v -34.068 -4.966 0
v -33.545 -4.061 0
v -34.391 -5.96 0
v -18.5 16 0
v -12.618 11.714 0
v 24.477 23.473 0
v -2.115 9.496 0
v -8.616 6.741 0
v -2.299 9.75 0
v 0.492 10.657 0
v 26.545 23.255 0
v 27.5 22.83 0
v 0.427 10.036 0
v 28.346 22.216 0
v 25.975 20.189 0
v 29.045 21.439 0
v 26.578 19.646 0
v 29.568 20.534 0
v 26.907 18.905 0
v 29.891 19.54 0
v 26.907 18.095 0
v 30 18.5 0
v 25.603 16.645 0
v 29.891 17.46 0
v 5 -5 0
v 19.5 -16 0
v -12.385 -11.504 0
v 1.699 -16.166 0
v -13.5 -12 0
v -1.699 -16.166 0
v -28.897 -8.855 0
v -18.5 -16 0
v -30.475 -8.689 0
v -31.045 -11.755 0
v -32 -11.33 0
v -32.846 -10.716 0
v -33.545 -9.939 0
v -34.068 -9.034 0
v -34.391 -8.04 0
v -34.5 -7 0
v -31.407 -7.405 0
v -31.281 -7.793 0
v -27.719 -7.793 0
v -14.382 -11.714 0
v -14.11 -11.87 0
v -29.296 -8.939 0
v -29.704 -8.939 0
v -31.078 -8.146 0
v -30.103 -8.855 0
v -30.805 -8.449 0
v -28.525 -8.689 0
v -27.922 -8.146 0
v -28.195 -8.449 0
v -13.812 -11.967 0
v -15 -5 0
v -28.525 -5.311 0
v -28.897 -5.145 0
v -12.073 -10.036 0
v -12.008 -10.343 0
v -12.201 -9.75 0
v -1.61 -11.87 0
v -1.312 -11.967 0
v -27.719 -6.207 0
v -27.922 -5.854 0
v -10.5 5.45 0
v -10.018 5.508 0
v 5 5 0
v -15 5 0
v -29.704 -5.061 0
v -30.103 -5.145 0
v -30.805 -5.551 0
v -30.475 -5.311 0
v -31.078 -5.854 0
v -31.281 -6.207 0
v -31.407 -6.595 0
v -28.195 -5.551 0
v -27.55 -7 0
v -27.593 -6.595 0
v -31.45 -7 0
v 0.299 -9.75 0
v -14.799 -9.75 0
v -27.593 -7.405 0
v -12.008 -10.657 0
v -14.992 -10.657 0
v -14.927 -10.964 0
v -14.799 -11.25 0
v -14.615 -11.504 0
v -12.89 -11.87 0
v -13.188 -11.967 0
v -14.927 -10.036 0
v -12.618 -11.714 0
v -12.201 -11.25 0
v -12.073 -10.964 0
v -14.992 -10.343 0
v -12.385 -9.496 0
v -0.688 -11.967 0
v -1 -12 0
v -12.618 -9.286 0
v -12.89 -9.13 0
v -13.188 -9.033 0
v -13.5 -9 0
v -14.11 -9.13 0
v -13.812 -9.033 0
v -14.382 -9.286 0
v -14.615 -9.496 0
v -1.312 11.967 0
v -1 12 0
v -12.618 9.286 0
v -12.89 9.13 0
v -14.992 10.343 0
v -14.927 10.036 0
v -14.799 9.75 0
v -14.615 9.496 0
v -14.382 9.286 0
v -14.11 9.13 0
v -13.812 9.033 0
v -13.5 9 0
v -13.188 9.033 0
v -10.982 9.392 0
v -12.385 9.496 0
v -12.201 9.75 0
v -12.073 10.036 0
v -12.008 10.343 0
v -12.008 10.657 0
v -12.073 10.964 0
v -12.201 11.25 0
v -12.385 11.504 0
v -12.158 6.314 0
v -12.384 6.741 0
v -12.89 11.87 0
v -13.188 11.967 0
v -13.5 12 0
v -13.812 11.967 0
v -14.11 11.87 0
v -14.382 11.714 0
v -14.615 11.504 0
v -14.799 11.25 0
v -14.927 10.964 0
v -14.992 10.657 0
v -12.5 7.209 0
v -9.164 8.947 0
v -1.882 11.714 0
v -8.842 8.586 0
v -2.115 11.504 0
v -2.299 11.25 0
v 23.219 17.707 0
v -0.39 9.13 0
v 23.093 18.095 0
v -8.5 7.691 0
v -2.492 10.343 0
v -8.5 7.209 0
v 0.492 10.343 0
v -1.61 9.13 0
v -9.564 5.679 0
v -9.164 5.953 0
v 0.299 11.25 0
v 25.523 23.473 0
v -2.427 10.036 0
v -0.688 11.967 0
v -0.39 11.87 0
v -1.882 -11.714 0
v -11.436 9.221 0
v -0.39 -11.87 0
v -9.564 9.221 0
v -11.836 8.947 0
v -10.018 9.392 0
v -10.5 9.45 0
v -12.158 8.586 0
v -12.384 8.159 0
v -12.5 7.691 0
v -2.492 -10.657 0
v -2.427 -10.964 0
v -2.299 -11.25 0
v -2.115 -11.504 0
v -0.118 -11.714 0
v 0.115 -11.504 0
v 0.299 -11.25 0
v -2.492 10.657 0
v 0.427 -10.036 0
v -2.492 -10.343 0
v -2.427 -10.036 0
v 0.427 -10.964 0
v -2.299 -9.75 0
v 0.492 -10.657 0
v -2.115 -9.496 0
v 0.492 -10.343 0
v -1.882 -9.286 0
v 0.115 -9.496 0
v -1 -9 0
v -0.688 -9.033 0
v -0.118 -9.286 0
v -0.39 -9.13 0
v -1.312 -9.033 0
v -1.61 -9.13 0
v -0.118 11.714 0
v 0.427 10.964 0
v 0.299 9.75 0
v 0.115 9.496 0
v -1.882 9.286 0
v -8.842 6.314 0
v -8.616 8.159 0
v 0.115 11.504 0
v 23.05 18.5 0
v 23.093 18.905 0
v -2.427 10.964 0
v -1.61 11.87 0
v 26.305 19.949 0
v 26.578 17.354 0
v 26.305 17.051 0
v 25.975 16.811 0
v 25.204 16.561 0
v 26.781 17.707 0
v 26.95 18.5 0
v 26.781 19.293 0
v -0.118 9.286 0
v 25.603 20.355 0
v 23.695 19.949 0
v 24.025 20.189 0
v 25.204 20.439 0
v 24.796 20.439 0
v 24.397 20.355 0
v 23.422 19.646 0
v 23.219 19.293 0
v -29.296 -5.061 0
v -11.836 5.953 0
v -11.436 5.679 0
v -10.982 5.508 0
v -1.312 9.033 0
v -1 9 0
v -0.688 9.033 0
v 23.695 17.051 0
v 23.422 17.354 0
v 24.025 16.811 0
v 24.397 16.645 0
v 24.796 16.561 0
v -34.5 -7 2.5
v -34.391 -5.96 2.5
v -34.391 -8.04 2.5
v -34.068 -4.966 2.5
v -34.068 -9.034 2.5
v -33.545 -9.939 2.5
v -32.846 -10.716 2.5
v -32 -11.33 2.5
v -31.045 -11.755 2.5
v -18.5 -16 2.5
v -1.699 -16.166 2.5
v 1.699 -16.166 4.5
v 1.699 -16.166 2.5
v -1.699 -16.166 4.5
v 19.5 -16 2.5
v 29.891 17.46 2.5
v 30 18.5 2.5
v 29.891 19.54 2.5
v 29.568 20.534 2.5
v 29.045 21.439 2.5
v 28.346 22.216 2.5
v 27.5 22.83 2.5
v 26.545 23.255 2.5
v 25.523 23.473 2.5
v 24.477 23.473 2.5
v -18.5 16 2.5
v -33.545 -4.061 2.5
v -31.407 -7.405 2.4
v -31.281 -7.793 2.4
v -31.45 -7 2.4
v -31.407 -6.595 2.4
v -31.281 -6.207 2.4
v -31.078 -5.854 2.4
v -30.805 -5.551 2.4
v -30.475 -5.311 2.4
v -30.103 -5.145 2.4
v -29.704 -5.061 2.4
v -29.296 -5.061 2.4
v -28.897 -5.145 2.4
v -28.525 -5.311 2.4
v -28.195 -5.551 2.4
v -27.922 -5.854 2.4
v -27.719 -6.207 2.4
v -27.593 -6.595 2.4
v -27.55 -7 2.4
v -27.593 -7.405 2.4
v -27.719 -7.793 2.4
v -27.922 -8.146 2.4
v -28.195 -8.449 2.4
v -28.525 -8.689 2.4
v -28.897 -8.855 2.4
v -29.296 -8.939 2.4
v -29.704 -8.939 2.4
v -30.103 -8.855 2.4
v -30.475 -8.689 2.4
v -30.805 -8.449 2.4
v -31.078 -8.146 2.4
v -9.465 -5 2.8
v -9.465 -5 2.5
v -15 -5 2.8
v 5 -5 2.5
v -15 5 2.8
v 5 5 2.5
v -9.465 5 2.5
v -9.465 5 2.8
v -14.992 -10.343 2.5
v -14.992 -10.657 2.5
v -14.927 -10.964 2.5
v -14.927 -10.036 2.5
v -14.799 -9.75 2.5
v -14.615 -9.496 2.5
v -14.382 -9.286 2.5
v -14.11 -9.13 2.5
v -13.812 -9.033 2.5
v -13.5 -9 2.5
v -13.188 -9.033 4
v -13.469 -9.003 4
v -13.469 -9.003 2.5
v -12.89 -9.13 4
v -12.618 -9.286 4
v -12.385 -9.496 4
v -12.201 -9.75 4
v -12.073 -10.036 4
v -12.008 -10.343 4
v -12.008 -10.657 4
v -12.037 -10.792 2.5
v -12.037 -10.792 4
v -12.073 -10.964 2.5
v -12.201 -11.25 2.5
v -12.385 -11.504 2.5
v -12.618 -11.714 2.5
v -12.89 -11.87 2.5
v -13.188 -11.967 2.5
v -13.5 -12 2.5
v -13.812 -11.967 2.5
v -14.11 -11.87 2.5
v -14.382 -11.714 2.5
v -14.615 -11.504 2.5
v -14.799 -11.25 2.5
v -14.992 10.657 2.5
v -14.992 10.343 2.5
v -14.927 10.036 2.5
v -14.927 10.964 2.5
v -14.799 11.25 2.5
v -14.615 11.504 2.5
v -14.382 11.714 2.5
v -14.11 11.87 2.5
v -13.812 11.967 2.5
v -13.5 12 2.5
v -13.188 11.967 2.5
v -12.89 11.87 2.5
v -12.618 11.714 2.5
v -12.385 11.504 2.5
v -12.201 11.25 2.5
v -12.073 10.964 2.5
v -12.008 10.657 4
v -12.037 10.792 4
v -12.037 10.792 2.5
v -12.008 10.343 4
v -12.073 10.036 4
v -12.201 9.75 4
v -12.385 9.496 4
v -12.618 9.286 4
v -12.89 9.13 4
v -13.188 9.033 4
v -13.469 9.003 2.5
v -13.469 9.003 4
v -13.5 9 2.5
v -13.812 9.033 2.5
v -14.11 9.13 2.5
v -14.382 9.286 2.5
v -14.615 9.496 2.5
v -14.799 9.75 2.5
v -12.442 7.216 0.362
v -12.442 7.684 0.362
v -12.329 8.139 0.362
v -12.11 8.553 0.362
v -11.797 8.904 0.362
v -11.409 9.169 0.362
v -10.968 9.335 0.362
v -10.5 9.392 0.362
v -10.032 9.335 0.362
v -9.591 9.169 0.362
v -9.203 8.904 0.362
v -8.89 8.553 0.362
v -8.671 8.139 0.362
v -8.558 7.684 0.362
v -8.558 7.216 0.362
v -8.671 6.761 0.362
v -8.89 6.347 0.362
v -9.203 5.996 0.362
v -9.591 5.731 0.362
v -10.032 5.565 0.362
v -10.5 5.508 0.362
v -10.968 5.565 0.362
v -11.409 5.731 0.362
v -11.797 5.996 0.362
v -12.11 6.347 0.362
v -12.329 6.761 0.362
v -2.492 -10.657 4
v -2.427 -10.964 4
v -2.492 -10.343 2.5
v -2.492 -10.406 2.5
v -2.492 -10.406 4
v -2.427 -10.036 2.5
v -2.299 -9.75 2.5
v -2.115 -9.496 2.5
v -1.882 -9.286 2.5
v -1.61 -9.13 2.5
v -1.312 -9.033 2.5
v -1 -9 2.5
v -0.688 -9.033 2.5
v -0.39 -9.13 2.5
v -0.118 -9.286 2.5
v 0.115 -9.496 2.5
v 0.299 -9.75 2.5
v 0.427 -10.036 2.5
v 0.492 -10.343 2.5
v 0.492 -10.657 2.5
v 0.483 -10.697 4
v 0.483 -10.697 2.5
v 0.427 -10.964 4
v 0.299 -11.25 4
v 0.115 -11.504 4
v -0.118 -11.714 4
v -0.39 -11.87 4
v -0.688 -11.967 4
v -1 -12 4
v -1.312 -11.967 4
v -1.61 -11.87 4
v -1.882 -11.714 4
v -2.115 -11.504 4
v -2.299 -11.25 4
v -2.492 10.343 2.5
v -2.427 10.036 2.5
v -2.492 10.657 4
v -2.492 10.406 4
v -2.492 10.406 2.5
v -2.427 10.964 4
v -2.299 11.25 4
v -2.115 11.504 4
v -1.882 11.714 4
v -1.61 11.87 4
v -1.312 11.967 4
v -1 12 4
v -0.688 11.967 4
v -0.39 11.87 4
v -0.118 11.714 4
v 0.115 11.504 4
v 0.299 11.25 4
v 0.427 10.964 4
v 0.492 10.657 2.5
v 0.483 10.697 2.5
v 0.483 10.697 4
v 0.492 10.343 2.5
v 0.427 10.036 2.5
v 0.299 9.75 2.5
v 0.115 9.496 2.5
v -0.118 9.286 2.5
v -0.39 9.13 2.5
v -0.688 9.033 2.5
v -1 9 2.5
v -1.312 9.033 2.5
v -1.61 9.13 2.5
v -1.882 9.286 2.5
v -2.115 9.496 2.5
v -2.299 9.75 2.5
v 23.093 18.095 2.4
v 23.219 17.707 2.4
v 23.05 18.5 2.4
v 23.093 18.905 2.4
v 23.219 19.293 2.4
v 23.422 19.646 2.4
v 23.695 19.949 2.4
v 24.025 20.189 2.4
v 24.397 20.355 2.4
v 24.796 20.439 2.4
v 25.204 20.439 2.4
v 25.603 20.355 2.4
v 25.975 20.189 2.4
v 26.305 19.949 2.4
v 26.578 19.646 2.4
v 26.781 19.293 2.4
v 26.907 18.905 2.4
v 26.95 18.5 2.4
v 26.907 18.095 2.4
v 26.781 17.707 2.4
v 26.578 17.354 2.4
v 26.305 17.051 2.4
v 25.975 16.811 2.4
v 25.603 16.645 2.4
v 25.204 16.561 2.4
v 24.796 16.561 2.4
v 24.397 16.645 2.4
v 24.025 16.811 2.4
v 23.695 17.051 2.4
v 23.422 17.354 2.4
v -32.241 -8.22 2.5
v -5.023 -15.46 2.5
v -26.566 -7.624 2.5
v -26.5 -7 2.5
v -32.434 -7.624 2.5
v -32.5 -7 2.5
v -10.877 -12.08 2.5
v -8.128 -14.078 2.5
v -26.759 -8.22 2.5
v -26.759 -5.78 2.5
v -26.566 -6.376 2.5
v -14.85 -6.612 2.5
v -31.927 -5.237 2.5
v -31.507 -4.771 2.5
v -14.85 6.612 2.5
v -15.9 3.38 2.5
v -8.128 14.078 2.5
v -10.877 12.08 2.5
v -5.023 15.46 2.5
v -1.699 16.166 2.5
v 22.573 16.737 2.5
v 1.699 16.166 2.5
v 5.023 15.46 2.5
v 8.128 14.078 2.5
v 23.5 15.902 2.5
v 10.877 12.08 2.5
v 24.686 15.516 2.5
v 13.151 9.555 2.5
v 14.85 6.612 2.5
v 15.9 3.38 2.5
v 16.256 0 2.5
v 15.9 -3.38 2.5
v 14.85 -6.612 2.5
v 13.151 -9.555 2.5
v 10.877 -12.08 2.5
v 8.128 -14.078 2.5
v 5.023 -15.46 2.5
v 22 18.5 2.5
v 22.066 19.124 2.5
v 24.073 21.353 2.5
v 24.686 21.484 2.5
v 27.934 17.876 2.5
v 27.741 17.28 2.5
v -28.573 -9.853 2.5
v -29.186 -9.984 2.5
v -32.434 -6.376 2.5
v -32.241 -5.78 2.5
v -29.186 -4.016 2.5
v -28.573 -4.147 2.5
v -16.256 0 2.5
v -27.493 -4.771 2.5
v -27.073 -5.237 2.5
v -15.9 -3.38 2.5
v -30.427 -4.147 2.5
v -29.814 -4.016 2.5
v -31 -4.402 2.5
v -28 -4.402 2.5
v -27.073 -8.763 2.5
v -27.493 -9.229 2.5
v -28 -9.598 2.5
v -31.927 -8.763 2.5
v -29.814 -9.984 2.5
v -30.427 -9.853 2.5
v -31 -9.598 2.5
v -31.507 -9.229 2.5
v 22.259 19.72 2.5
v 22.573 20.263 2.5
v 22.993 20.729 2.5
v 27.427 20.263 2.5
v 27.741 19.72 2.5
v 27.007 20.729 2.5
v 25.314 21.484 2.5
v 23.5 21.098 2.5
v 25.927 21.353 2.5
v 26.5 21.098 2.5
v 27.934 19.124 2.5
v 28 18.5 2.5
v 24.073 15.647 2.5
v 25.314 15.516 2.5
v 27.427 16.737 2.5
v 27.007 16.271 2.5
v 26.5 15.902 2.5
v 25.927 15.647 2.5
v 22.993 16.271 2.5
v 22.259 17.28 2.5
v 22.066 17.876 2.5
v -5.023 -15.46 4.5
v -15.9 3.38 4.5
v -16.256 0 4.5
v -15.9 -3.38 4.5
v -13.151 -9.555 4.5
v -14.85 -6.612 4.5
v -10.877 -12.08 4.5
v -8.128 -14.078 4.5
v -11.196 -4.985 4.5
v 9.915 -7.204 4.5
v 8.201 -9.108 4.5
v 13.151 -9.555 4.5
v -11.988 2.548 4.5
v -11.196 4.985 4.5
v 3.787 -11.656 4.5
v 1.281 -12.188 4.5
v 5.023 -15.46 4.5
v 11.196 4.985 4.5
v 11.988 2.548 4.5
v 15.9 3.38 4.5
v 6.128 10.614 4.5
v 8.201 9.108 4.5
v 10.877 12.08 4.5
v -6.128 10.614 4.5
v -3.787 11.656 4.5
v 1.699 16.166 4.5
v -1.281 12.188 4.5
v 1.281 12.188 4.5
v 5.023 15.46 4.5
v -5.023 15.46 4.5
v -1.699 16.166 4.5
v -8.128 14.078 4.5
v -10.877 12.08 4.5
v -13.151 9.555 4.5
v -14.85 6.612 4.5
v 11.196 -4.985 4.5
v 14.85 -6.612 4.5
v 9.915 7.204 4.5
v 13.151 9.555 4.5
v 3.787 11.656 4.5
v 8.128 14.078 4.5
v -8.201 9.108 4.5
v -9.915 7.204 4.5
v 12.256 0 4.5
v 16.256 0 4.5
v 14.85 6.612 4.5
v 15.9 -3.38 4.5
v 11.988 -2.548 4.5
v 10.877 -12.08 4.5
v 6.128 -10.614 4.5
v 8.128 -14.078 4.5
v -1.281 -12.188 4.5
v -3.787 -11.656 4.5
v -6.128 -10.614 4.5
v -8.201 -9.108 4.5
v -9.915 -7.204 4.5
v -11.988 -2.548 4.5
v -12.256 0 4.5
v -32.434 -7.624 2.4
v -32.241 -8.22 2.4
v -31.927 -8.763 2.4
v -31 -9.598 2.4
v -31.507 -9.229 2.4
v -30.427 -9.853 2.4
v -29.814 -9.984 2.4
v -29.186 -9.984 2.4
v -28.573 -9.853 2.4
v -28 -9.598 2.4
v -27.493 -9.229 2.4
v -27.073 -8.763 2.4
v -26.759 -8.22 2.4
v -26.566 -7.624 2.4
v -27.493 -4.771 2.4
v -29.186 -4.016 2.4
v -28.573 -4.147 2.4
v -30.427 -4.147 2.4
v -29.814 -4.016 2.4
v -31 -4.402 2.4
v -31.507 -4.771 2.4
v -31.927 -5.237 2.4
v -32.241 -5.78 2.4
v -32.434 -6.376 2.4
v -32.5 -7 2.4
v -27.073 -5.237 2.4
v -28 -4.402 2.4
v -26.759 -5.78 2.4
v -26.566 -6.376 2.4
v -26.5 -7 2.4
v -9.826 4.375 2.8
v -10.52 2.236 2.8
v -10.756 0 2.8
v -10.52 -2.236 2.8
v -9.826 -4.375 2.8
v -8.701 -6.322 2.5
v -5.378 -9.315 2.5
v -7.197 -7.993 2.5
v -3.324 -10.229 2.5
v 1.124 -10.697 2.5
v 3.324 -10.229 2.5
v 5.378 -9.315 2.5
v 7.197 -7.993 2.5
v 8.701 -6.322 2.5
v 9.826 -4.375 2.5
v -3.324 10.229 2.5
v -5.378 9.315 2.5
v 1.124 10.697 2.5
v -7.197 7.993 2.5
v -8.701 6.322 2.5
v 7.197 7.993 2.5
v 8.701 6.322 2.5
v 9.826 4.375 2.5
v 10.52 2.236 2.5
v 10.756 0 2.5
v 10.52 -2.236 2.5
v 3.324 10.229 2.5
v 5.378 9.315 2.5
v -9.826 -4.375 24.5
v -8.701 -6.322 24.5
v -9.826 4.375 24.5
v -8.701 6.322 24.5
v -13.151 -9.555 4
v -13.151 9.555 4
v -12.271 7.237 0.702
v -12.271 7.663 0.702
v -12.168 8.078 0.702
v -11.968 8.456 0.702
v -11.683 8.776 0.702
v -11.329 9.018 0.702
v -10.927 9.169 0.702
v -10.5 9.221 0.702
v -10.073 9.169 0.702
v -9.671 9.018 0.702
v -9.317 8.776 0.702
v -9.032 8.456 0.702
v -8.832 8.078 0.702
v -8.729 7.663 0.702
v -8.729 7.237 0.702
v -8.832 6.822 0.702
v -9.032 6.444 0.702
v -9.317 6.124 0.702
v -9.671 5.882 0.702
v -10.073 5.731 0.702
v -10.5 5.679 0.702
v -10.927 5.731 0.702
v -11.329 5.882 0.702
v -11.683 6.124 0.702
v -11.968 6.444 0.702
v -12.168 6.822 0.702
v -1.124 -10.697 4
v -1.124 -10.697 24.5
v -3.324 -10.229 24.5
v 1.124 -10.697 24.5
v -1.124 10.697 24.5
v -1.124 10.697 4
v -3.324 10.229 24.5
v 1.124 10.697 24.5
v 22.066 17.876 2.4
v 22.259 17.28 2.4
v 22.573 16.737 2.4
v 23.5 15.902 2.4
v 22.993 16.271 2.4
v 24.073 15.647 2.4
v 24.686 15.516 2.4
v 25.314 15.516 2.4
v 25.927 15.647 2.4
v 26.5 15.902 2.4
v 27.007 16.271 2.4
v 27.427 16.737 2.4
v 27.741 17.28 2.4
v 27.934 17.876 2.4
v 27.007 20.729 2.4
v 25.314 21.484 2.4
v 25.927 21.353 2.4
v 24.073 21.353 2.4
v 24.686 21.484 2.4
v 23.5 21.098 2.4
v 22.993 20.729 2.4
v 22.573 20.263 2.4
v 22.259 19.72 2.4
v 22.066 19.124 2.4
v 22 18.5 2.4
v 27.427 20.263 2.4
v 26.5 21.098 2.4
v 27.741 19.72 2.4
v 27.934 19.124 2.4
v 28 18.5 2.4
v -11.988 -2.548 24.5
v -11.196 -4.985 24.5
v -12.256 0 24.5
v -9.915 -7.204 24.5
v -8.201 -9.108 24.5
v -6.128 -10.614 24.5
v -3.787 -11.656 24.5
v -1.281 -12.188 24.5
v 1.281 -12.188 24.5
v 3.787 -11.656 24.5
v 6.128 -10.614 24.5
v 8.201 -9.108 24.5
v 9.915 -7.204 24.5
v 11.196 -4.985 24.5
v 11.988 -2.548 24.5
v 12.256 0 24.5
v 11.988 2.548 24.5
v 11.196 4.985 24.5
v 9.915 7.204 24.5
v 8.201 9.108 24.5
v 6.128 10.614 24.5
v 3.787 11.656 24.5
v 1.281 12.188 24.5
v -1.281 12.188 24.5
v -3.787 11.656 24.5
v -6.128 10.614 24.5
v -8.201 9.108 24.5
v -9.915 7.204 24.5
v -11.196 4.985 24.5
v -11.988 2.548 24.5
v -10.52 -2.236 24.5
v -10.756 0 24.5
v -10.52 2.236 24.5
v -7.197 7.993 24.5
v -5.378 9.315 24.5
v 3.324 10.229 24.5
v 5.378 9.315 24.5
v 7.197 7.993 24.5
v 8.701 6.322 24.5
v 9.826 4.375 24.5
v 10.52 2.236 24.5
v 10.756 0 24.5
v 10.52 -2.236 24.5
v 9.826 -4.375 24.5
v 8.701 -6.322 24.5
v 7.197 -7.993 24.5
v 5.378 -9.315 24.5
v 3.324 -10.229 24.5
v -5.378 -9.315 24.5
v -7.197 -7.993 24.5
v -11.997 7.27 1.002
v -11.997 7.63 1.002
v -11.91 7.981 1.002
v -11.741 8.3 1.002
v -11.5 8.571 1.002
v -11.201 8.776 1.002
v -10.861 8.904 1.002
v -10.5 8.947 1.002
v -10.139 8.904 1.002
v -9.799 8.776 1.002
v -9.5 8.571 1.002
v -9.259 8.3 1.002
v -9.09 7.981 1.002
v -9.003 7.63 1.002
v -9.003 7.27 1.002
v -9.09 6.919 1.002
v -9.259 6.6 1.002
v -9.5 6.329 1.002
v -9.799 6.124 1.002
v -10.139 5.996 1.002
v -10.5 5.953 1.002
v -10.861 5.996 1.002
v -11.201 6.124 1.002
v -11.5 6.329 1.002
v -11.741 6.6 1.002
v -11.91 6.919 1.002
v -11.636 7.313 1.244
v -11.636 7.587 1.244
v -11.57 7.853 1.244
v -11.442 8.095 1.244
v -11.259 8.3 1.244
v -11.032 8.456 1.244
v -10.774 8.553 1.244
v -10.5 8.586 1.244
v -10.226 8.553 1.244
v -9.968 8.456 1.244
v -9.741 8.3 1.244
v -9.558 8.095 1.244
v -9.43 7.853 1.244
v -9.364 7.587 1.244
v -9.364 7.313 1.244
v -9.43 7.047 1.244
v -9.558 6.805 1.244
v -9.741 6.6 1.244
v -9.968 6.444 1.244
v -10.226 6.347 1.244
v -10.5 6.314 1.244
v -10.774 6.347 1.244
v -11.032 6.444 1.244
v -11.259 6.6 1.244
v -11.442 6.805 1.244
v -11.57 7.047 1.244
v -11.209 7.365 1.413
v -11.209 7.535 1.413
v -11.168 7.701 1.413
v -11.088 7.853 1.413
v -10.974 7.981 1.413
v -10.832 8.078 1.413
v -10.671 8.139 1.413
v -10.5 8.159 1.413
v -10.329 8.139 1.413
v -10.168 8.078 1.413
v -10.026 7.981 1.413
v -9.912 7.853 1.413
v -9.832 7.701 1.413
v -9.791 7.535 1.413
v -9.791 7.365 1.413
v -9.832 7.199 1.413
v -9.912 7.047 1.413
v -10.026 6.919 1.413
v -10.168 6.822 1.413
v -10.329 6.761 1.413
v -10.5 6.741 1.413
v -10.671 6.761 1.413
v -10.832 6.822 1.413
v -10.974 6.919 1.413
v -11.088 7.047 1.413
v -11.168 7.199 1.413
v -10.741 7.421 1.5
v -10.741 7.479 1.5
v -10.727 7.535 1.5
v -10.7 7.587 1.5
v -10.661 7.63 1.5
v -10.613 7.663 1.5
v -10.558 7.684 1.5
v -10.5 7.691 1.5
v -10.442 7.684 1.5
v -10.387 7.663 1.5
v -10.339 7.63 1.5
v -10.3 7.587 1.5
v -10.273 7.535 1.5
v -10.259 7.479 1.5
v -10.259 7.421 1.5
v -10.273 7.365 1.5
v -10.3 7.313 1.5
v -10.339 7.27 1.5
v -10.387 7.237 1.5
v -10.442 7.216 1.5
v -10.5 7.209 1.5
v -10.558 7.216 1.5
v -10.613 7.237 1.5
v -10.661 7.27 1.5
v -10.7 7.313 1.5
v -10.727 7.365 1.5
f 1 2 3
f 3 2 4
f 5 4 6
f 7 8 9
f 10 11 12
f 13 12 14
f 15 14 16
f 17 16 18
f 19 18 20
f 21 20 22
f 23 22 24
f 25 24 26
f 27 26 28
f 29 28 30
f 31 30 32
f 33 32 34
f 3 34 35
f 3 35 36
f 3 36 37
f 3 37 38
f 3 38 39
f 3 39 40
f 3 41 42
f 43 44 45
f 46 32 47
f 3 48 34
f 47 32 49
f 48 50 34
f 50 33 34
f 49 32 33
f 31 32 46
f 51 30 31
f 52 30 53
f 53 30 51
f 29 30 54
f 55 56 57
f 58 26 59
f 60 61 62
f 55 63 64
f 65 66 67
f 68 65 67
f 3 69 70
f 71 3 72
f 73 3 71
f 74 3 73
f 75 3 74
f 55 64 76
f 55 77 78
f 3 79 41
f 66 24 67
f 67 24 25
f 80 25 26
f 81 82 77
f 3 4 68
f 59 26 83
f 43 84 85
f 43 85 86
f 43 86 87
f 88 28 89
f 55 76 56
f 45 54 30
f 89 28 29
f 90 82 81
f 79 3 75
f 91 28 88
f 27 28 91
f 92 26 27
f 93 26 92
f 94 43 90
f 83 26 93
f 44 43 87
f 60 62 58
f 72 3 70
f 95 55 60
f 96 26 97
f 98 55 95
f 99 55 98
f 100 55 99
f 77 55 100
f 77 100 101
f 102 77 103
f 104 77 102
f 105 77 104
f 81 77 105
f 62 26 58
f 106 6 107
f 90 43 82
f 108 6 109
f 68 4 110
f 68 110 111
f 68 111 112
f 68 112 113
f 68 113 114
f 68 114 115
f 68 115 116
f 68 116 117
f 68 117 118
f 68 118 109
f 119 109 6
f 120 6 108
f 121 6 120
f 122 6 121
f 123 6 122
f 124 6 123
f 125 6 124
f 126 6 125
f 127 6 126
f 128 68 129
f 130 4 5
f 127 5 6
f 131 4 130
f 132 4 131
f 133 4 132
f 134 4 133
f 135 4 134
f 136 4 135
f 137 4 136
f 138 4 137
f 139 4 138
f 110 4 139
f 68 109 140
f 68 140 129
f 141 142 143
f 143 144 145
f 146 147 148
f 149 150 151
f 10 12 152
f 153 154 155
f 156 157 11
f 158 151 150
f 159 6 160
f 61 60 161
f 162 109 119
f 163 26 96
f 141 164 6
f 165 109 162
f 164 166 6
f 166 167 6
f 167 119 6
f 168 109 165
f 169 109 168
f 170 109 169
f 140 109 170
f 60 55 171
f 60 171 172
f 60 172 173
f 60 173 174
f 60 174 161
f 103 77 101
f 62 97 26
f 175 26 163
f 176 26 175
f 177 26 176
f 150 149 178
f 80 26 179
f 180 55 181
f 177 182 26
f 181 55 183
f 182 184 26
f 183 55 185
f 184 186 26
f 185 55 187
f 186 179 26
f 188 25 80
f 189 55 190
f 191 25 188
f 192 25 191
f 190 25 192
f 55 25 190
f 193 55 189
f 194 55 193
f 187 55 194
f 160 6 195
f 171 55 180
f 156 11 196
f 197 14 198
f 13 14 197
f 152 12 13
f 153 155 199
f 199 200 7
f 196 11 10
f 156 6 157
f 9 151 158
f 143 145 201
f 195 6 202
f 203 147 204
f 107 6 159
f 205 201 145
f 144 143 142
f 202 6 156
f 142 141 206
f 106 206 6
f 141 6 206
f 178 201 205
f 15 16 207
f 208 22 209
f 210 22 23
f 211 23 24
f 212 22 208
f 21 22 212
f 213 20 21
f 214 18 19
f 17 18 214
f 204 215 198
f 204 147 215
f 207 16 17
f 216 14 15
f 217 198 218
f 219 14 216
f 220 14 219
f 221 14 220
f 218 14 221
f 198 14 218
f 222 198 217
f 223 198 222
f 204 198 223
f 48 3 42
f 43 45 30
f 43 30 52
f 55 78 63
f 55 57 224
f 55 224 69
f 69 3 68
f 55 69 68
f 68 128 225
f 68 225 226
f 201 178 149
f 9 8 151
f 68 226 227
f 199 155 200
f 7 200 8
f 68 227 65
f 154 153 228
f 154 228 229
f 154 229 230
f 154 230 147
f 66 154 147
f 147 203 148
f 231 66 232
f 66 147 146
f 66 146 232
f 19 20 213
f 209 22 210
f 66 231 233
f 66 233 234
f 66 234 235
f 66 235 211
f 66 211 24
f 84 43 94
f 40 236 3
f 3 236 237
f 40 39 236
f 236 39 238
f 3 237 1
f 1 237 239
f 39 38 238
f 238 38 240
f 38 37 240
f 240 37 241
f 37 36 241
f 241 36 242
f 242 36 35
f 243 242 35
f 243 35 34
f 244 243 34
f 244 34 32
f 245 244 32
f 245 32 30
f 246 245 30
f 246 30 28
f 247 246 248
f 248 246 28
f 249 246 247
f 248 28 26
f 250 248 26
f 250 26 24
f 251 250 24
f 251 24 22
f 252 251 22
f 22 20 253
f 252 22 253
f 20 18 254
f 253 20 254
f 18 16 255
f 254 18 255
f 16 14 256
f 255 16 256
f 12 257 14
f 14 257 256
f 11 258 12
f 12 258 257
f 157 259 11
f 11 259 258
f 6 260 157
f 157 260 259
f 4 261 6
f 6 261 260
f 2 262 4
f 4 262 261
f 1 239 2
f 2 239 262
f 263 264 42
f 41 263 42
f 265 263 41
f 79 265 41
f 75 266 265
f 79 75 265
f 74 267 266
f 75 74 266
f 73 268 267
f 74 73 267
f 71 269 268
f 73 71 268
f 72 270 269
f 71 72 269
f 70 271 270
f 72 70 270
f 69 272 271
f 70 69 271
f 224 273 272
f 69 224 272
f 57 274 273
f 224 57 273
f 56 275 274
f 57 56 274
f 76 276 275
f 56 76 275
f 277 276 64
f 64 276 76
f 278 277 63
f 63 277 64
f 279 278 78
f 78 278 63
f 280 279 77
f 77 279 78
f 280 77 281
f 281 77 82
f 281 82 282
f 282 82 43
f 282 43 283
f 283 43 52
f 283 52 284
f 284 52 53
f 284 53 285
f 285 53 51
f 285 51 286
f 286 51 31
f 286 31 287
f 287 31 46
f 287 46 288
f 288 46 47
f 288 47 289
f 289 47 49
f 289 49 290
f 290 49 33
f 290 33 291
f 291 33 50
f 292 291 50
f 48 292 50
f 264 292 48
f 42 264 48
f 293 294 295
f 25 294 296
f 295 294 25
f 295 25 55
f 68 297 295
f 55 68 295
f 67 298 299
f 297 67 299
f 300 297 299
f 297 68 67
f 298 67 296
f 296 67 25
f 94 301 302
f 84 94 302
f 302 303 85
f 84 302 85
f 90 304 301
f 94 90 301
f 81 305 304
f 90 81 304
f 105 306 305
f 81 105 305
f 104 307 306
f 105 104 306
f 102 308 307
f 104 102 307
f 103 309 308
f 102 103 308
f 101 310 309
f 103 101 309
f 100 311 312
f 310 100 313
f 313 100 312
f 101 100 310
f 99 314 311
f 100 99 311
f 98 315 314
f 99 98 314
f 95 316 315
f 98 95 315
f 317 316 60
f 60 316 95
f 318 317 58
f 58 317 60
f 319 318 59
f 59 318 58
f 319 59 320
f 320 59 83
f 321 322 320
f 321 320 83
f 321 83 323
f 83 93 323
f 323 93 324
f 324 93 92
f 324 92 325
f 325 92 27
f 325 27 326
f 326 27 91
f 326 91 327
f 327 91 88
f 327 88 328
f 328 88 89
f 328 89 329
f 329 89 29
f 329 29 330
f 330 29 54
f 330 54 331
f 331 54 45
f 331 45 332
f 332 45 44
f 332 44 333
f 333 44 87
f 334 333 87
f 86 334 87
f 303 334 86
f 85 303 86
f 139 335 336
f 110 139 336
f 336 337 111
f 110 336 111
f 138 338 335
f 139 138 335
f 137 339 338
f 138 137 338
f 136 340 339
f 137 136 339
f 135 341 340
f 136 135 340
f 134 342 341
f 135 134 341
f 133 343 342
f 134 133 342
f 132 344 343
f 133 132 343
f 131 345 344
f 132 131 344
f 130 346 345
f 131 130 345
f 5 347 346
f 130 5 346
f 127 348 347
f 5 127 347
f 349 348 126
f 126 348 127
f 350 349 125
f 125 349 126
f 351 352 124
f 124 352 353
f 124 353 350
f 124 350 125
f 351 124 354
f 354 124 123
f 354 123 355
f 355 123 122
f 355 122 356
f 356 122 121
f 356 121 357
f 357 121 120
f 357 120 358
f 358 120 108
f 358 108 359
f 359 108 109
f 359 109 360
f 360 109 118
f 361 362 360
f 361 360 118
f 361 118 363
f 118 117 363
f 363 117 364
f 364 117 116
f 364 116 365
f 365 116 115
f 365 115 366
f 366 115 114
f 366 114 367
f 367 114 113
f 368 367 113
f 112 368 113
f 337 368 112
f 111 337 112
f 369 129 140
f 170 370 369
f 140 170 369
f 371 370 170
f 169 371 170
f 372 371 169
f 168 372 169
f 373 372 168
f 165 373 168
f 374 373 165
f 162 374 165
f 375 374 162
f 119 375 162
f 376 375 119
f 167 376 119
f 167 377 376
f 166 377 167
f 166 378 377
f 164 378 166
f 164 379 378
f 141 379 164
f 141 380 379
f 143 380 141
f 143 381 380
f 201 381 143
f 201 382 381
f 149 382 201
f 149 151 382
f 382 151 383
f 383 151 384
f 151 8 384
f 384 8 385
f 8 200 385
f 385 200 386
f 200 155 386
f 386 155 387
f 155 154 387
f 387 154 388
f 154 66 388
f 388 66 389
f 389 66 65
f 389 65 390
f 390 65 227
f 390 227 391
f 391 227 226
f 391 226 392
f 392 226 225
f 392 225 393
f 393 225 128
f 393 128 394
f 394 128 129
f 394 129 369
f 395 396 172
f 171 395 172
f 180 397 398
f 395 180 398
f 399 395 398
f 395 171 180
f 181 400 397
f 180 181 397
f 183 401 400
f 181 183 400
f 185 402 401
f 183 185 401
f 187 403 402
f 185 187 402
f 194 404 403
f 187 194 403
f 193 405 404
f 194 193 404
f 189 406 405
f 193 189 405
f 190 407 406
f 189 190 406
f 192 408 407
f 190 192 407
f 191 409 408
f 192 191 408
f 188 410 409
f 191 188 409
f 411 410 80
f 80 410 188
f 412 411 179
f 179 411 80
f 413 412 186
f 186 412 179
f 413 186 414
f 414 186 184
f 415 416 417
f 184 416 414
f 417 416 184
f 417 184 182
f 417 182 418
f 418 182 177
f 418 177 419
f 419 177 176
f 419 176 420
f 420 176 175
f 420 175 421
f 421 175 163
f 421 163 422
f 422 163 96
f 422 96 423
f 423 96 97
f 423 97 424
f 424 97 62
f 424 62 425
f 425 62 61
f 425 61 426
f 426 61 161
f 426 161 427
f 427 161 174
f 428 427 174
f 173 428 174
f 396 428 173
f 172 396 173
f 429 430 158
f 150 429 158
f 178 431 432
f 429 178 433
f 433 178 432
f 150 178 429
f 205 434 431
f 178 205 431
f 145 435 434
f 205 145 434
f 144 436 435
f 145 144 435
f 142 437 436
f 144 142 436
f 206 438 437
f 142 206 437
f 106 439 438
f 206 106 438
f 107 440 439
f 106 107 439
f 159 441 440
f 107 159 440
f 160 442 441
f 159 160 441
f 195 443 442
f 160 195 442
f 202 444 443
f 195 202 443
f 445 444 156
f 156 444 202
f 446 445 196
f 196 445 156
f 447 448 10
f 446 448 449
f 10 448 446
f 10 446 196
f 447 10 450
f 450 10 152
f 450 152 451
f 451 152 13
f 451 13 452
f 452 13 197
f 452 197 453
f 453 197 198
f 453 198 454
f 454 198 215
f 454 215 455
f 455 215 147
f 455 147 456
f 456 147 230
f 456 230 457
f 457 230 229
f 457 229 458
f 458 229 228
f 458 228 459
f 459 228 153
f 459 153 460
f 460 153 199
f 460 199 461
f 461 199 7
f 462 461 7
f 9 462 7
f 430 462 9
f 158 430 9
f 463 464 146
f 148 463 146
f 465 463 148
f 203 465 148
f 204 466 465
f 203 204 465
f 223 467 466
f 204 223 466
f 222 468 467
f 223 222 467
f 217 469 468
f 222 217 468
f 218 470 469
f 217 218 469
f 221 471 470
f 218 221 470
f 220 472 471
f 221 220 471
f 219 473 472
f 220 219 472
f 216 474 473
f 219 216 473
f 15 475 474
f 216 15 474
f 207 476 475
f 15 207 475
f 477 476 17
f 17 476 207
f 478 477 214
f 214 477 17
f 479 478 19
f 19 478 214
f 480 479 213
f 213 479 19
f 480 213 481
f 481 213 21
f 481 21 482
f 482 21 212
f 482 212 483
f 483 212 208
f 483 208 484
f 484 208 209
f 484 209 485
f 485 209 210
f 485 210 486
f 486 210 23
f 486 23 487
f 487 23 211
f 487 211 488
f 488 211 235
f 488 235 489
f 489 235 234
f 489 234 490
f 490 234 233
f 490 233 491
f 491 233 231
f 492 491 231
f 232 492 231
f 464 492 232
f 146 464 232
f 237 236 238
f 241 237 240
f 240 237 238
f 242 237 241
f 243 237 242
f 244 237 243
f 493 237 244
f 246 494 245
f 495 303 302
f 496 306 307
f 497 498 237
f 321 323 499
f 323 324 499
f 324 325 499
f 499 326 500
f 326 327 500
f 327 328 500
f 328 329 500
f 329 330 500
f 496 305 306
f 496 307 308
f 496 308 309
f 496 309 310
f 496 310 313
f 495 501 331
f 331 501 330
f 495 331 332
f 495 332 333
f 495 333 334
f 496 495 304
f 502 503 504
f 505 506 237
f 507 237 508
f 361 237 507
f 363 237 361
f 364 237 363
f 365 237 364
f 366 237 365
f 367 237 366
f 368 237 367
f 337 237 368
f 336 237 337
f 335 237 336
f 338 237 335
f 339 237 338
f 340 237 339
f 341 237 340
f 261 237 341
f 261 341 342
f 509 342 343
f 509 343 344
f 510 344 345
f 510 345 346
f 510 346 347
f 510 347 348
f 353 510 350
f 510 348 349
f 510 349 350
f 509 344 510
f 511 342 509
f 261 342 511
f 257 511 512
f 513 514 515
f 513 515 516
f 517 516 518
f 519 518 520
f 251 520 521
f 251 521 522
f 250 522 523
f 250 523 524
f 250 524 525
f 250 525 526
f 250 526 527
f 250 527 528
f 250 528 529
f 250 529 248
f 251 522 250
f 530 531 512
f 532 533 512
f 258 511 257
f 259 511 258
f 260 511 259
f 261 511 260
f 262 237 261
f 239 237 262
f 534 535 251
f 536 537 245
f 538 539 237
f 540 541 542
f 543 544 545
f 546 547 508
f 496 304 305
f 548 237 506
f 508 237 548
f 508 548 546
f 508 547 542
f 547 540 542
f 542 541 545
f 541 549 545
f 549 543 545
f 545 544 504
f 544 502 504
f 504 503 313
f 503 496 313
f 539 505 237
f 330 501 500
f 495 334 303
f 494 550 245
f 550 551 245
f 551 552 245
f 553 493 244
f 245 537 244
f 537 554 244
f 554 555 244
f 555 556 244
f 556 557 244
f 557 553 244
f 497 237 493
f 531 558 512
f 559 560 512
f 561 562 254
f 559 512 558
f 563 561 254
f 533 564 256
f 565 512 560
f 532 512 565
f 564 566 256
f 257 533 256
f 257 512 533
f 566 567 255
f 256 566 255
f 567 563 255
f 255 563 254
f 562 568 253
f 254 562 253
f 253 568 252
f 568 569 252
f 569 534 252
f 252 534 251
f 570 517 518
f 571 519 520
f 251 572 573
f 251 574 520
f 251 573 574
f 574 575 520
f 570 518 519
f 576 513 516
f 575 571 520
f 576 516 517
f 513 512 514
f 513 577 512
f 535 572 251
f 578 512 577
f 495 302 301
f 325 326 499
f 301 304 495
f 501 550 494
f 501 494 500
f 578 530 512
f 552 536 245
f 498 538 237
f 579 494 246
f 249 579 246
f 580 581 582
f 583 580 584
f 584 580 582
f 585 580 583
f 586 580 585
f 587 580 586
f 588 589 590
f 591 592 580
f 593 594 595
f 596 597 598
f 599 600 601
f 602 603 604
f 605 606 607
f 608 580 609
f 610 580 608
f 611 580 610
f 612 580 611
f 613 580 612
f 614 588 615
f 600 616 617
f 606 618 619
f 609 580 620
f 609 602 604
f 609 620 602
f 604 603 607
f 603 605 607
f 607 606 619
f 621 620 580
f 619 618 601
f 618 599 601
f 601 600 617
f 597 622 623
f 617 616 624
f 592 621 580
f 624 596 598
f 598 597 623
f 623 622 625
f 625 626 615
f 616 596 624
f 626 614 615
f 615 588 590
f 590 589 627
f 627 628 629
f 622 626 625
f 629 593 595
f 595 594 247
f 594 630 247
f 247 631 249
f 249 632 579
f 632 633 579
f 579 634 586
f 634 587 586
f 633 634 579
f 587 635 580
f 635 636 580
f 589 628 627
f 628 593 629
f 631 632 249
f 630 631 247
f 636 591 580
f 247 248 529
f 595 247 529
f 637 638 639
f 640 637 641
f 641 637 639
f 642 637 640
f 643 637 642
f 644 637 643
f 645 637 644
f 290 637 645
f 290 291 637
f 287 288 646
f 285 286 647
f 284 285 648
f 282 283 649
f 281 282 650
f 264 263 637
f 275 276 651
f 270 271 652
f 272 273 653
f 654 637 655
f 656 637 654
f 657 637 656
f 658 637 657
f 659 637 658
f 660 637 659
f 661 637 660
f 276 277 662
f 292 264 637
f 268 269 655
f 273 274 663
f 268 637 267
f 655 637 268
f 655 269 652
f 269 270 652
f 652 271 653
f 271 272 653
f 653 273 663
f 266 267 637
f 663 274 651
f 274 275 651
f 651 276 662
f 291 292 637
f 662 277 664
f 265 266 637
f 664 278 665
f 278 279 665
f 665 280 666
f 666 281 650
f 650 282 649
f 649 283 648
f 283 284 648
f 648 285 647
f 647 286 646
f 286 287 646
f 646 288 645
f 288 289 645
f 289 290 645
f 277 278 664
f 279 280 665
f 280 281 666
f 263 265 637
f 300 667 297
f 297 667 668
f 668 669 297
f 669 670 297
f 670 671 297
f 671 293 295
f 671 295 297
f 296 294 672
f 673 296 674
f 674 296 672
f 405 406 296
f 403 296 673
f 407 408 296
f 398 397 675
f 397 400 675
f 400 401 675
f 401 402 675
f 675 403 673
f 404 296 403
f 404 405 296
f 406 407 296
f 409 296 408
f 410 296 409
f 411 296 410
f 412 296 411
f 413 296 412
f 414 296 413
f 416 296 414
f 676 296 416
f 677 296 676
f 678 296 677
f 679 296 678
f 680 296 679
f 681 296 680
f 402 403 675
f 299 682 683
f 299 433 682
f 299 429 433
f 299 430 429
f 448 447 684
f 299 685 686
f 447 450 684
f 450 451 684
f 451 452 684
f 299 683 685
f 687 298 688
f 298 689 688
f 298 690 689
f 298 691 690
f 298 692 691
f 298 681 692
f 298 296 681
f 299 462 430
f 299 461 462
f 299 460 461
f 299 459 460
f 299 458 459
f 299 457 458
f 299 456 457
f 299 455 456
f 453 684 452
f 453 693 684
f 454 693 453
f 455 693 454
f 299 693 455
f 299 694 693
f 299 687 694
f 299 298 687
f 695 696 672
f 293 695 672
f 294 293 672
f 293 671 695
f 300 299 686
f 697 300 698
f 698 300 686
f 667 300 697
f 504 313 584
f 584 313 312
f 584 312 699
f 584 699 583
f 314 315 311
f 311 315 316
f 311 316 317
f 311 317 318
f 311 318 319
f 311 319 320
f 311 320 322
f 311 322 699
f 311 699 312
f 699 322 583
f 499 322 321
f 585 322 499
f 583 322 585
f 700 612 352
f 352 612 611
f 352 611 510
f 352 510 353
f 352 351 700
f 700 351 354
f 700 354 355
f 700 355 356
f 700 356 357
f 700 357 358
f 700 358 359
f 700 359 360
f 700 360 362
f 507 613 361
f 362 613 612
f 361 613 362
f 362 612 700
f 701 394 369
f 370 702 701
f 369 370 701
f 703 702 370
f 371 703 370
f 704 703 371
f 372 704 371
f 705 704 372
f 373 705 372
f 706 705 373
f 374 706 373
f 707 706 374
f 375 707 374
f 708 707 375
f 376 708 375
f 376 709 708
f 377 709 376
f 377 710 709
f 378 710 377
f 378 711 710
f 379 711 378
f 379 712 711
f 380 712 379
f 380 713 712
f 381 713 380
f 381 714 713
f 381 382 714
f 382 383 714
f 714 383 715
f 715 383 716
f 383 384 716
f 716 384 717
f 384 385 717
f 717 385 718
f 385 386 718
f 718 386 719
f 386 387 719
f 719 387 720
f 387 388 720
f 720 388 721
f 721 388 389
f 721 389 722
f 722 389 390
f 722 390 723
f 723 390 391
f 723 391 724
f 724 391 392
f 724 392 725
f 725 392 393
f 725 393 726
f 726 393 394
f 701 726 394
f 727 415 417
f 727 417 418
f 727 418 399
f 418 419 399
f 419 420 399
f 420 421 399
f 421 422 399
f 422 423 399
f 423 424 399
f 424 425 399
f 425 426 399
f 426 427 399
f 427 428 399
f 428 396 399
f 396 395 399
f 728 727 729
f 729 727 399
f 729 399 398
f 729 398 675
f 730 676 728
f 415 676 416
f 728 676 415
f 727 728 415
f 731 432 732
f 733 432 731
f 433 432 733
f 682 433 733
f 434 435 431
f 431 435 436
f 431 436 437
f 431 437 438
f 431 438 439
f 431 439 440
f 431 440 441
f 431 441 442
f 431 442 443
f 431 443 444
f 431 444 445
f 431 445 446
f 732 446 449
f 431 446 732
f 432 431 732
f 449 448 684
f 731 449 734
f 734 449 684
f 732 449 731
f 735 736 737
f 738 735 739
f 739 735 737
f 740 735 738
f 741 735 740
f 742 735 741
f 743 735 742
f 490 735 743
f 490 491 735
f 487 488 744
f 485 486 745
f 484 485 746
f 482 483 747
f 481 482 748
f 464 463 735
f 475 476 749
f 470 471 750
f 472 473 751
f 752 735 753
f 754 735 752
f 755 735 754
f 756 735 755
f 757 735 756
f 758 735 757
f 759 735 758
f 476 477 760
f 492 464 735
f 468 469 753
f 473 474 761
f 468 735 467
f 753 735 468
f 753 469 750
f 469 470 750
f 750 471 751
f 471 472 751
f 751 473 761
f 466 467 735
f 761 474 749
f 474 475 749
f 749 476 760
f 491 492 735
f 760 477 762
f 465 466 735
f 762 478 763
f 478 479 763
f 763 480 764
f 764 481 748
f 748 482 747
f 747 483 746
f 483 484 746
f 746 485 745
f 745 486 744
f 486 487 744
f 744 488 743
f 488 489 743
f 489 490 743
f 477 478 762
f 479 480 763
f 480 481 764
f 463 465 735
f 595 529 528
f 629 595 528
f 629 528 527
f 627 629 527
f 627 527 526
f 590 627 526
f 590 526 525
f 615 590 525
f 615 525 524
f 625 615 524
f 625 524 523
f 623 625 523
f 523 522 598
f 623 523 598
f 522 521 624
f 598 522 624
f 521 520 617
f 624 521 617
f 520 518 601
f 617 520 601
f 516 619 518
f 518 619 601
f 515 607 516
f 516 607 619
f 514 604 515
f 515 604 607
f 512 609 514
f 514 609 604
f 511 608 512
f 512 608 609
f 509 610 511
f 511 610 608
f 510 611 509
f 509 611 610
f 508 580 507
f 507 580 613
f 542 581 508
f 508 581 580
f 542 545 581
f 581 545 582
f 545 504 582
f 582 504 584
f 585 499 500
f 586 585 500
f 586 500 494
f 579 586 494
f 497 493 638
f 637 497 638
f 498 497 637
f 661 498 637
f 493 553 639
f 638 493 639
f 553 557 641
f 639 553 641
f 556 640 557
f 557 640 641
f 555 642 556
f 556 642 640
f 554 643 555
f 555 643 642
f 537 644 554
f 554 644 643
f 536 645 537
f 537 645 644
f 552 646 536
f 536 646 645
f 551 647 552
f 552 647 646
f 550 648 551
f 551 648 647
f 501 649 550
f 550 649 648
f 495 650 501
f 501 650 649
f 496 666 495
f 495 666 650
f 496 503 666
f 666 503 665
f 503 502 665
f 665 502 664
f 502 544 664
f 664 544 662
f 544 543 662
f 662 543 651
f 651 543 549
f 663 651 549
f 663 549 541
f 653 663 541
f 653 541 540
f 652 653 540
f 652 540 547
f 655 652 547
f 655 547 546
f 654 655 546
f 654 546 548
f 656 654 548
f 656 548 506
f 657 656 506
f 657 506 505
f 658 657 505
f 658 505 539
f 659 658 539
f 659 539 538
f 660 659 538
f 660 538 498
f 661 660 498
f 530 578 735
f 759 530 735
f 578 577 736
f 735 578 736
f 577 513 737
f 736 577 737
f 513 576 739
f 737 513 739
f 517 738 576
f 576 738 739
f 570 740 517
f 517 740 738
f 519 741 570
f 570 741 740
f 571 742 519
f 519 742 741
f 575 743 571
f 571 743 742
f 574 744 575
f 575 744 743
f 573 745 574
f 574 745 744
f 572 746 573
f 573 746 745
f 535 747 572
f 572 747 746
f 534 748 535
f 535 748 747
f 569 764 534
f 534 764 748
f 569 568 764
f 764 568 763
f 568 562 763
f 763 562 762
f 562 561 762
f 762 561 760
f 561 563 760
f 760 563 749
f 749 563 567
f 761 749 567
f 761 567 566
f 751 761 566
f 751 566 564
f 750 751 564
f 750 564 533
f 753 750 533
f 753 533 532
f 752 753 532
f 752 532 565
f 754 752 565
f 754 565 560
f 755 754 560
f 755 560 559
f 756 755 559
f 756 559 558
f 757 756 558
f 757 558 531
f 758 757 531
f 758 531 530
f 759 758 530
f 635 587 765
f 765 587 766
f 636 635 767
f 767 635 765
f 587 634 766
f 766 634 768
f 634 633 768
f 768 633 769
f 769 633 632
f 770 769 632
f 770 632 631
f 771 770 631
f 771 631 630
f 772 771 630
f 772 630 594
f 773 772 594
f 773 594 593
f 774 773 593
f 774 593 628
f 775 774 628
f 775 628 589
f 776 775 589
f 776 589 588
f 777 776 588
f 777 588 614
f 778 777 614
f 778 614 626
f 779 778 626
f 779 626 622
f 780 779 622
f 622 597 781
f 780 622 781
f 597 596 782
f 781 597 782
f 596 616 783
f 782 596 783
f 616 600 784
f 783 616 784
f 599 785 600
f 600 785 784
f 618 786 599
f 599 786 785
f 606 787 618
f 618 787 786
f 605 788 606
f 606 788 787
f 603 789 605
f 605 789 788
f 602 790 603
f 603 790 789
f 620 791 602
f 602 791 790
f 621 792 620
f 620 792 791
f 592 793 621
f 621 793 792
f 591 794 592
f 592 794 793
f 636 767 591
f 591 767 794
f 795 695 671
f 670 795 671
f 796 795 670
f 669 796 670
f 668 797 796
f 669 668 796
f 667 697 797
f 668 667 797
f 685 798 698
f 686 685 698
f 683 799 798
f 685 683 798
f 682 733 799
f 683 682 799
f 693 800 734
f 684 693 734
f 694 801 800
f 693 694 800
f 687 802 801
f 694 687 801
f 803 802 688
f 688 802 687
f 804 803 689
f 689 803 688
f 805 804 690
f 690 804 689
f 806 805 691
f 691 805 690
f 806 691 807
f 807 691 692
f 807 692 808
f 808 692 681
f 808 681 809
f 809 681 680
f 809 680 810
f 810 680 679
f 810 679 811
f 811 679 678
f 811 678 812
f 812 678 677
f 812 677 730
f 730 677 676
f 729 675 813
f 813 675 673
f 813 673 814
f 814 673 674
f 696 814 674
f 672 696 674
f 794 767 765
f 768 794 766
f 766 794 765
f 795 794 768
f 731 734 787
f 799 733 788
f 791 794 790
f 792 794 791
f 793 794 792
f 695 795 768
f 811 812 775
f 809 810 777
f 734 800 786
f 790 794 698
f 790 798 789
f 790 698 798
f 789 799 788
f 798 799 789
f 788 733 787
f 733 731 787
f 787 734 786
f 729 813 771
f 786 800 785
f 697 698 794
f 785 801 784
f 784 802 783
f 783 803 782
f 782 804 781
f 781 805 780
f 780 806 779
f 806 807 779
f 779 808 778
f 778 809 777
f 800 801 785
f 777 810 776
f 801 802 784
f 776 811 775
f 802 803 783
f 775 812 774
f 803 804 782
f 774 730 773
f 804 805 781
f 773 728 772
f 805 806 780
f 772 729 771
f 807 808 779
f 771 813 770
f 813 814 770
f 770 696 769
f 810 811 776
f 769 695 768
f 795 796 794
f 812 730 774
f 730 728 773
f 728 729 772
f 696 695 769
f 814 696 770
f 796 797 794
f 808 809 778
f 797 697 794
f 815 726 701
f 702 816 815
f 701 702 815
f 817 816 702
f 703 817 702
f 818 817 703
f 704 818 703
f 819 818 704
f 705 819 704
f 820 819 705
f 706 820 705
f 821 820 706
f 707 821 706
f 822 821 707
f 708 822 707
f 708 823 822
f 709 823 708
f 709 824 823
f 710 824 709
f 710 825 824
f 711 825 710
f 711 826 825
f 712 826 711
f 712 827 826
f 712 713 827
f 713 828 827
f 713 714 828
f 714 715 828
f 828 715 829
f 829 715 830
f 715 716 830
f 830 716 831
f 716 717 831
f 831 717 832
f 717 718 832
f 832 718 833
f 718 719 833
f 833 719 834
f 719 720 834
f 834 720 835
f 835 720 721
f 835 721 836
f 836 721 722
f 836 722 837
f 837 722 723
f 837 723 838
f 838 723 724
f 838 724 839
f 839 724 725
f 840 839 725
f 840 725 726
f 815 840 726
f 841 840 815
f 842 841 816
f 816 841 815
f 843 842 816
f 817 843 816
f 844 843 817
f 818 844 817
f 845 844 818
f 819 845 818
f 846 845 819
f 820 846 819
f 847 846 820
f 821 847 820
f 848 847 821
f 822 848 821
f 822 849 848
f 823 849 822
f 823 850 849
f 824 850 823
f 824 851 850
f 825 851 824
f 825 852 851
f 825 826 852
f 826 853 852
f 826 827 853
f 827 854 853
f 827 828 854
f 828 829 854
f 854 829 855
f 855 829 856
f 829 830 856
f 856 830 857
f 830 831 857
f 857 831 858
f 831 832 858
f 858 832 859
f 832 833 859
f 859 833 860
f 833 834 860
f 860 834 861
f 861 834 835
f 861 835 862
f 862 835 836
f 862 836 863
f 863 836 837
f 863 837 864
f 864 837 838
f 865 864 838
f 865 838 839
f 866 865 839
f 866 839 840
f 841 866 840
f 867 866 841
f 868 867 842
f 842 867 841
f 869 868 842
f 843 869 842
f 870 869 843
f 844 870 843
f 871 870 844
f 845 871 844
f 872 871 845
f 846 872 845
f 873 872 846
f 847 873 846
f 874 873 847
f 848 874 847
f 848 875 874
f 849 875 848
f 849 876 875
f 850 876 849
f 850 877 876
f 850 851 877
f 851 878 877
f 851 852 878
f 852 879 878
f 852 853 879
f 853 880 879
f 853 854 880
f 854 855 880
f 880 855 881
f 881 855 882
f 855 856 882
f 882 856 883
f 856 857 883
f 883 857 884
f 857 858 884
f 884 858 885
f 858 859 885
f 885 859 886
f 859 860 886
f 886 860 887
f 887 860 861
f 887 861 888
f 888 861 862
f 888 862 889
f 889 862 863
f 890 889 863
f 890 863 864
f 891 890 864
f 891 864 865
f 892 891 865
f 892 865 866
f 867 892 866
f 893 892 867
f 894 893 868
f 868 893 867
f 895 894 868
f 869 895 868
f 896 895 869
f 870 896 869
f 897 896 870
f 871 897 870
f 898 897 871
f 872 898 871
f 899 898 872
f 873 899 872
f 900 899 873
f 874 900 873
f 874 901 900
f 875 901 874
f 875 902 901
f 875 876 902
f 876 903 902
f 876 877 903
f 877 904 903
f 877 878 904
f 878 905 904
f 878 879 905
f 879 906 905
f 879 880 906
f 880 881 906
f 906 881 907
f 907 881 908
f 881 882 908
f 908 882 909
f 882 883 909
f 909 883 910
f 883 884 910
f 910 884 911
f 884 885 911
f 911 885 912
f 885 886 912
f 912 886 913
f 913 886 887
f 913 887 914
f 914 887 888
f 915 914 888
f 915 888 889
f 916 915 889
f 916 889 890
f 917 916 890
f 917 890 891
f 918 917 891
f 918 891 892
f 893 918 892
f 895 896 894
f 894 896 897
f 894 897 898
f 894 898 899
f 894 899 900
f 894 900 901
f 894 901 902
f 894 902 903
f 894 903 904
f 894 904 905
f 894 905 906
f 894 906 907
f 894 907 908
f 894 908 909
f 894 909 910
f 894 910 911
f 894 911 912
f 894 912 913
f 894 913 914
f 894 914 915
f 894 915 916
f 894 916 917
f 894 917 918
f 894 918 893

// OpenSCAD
// camera module draw tube that slides into the telescope nosepiece.

$fs=0.25;
// Make the values explicit since we are not running customizer
Drawtube_OD_inches_explicit = 0.965;
part_explicit="drawtube";

include <pipiece.scad>
